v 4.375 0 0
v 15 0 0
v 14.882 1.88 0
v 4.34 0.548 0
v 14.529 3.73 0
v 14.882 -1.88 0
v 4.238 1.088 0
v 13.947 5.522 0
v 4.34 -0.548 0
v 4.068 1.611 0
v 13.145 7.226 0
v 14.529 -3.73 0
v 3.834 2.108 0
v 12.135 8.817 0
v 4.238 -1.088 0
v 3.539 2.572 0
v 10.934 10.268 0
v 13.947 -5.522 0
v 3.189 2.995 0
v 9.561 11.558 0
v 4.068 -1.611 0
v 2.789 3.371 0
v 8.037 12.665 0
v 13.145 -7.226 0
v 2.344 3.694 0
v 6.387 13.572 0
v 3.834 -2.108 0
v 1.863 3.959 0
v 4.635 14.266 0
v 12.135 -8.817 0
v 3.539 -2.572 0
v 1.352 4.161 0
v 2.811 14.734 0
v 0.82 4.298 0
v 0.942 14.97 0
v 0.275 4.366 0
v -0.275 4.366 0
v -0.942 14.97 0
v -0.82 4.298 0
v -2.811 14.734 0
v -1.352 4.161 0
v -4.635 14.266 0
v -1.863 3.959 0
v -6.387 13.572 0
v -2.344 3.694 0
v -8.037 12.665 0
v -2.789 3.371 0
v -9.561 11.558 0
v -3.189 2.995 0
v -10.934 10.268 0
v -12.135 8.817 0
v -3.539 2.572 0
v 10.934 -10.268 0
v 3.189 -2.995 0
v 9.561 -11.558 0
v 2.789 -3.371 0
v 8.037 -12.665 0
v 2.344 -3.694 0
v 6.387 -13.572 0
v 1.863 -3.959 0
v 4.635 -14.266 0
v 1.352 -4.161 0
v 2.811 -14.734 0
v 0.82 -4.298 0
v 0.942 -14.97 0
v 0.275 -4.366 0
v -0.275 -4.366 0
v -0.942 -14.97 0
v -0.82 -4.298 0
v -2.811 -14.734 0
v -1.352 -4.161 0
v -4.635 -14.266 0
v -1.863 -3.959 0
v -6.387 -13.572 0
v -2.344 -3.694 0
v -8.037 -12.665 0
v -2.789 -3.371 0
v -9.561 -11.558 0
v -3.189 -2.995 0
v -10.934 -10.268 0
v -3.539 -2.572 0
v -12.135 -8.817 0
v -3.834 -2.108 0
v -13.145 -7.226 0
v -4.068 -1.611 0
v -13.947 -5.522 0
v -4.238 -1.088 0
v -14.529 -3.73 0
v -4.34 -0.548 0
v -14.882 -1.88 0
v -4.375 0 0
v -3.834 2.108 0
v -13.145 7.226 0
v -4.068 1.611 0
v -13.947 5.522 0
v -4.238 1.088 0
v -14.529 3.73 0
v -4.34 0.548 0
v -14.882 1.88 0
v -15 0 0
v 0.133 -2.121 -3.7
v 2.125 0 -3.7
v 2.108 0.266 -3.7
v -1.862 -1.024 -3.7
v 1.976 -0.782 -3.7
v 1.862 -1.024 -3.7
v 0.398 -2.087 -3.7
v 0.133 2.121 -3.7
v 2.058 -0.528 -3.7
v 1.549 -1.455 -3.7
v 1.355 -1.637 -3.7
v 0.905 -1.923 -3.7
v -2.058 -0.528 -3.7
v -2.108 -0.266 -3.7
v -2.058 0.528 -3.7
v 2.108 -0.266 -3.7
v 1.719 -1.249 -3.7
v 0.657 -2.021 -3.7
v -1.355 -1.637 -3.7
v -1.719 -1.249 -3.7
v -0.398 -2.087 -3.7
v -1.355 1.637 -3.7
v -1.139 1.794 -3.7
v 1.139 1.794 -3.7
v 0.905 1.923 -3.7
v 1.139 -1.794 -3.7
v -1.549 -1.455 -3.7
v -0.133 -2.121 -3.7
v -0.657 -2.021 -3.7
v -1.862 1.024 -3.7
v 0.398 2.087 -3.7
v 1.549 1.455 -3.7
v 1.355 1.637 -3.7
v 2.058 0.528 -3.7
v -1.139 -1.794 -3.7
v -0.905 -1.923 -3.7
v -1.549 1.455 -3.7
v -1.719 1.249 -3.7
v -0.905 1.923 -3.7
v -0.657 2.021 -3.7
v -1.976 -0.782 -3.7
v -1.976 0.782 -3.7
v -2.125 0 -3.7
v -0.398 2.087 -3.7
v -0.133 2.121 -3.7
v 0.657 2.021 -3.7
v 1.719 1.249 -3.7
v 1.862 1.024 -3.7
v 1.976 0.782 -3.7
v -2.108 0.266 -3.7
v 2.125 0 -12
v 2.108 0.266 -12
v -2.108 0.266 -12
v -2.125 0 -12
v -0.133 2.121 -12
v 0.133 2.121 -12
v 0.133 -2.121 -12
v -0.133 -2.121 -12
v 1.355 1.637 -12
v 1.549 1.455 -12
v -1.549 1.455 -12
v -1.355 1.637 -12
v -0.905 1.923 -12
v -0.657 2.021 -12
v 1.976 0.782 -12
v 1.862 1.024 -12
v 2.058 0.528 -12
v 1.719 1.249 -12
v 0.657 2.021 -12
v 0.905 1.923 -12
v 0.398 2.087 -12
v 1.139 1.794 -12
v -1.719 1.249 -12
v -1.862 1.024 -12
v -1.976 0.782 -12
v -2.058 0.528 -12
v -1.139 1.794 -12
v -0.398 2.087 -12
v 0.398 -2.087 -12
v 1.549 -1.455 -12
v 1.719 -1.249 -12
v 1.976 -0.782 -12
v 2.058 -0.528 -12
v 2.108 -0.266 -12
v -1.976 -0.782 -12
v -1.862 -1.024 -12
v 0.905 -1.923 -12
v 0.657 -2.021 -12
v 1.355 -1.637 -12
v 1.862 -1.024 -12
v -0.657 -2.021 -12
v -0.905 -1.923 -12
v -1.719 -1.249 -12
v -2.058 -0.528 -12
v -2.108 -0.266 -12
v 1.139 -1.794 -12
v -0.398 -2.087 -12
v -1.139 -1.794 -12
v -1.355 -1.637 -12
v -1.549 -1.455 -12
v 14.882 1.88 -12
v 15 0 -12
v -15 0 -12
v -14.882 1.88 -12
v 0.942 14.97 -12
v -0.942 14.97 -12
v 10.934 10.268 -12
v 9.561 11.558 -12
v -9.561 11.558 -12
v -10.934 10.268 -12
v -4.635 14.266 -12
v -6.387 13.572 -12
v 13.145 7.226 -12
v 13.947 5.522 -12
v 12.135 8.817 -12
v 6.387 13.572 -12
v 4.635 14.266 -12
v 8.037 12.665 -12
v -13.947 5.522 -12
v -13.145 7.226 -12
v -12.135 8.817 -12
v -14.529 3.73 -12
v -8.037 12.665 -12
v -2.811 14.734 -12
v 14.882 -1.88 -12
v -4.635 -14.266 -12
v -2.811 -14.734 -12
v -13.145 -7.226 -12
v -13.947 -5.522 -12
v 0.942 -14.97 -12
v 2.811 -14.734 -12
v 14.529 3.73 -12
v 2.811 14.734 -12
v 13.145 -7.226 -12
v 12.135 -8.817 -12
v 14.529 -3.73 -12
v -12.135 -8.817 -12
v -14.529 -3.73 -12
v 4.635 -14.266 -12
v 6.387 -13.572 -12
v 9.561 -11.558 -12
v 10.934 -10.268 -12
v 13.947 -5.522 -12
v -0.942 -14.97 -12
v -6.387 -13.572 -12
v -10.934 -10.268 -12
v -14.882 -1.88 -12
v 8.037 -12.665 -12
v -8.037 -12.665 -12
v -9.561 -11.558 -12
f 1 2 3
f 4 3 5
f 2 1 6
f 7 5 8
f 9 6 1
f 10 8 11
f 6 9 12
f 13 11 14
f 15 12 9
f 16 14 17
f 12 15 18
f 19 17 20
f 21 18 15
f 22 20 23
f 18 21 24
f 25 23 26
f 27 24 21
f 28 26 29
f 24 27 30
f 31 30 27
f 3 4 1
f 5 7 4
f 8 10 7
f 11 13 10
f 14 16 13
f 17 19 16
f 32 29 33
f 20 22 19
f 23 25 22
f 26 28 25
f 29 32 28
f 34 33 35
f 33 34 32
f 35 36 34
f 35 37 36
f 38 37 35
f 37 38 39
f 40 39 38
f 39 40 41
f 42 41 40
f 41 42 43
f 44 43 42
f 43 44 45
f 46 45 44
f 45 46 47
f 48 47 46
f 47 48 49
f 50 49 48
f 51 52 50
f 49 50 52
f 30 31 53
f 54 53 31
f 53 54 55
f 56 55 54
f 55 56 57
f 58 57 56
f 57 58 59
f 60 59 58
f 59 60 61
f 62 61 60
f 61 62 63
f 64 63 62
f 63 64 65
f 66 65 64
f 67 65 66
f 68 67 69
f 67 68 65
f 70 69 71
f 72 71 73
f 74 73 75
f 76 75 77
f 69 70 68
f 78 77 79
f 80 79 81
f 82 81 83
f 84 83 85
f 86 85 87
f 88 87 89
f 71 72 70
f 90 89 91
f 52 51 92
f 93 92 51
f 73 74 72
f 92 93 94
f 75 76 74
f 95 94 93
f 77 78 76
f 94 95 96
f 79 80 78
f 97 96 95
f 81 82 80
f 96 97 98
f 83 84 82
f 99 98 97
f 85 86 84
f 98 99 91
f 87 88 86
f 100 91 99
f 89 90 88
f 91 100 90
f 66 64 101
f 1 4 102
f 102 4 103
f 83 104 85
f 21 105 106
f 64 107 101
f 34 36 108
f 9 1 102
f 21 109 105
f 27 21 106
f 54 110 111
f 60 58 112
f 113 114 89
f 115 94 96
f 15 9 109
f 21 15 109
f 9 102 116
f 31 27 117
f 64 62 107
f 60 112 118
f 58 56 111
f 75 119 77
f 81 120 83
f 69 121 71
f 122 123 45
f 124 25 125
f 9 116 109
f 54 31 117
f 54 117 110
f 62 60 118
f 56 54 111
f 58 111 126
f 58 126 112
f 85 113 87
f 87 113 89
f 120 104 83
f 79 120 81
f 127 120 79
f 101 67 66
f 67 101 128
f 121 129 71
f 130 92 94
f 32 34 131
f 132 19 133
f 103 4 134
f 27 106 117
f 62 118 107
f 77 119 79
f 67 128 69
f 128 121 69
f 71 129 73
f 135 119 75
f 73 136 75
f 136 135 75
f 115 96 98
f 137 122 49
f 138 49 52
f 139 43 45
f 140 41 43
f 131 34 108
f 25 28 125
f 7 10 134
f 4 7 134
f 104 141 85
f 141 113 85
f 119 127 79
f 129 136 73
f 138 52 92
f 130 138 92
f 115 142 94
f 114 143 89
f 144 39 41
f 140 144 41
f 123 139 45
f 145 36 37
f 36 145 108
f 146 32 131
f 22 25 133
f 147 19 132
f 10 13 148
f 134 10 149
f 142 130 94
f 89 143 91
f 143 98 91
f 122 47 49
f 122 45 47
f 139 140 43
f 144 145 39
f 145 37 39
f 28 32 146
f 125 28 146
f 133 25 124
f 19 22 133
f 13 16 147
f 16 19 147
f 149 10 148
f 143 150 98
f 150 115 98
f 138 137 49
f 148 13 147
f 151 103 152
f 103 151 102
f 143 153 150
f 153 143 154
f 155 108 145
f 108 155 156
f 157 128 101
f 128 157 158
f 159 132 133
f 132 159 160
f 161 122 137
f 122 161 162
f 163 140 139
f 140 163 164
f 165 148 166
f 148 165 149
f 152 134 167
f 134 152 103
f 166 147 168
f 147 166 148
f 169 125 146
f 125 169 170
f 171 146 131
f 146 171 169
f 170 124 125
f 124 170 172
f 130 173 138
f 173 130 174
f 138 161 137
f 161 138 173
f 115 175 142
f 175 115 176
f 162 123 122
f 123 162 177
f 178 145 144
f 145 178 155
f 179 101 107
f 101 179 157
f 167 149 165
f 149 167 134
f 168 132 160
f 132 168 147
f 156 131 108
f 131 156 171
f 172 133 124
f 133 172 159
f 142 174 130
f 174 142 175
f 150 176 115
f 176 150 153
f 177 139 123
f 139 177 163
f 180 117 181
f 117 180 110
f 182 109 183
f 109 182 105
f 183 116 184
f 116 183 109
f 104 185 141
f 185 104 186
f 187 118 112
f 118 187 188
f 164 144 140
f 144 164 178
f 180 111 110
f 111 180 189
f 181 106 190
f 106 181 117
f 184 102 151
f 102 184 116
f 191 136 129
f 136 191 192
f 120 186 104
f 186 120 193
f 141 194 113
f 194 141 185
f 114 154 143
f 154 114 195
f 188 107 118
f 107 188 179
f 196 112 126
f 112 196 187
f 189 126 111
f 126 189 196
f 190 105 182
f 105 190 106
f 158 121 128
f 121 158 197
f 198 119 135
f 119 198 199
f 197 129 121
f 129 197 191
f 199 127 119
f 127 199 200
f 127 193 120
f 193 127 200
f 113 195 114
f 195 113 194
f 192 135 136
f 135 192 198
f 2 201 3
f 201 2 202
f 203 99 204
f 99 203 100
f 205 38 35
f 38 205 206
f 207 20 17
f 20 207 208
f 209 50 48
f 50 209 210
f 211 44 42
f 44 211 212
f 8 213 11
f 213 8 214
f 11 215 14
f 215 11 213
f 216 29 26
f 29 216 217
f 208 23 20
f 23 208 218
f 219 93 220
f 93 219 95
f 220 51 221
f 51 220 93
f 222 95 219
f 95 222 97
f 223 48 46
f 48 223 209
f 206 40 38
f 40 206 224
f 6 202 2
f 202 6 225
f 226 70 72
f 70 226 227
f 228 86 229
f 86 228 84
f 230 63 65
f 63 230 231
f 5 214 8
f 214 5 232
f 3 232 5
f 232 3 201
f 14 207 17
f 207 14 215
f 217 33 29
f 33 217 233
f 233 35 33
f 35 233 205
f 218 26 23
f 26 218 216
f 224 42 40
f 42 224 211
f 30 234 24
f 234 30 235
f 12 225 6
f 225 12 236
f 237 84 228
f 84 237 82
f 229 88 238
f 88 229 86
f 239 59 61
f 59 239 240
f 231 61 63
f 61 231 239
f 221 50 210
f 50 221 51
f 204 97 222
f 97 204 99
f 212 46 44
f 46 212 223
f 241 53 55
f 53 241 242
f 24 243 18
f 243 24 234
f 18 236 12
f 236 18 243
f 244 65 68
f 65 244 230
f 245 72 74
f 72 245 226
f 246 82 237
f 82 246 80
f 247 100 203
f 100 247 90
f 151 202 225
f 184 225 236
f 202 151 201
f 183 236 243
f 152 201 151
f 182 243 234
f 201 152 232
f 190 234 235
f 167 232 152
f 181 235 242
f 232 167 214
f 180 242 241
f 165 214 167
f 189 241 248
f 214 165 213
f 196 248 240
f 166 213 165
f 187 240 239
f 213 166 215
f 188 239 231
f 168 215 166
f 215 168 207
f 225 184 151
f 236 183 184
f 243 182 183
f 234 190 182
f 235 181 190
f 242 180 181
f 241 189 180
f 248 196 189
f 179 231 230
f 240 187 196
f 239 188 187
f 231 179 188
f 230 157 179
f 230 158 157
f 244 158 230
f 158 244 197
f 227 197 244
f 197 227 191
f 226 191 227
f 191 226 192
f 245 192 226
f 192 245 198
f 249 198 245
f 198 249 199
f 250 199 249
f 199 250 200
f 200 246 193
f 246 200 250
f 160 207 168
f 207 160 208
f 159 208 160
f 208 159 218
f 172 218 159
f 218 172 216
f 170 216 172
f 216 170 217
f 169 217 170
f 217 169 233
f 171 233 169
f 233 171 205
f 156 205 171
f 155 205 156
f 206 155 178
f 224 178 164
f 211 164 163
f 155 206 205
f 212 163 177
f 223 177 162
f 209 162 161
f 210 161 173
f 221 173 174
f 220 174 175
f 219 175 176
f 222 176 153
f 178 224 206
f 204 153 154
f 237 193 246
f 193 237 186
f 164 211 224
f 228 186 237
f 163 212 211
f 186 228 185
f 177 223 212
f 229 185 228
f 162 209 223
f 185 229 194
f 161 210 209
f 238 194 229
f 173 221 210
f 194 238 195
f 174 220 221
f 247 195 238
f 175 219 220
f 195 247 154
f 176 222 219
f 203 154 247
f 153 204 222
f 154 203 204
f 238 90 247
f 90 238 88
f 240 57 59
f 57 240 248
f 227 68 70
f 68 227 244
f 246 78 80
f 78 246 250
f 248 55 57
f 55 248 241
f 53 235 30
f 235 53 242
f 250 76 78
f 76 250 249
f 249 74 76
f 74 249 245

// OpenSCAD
$fn = 50;


difference() {
	union() {
		translate(v = [0, 0, -12.0000000000]) {
			cylinder(h = 12, r = 15.0000000000);
		}
	}
	union() {
		translate(v = [0, 0, 0]) {
			rotate(a = [0, 0, 0]) {
				difference() {
					union() {
						translate(v = [0, 0, -15.0000000000]) {
							cylinder(h = 15, r = 2.0000000000);
						}
						translate(v = [0, 0, -3.7000000000]) {
							cylinder(h = 3.7000000000, r1 = 2.1250000000, r2 = 4.3750000000);
						}
						translate(v = [0, 0, -15.0000000000]) {
							cylinder(h = 15, r = 2.1250000000);
						}
						translate(v = [0, 0, -15.0000000000]) {
							cylinder(h = 15, r = 2.0000000000);
						}
					}
					union();
				}
			}
		}
	}
}
